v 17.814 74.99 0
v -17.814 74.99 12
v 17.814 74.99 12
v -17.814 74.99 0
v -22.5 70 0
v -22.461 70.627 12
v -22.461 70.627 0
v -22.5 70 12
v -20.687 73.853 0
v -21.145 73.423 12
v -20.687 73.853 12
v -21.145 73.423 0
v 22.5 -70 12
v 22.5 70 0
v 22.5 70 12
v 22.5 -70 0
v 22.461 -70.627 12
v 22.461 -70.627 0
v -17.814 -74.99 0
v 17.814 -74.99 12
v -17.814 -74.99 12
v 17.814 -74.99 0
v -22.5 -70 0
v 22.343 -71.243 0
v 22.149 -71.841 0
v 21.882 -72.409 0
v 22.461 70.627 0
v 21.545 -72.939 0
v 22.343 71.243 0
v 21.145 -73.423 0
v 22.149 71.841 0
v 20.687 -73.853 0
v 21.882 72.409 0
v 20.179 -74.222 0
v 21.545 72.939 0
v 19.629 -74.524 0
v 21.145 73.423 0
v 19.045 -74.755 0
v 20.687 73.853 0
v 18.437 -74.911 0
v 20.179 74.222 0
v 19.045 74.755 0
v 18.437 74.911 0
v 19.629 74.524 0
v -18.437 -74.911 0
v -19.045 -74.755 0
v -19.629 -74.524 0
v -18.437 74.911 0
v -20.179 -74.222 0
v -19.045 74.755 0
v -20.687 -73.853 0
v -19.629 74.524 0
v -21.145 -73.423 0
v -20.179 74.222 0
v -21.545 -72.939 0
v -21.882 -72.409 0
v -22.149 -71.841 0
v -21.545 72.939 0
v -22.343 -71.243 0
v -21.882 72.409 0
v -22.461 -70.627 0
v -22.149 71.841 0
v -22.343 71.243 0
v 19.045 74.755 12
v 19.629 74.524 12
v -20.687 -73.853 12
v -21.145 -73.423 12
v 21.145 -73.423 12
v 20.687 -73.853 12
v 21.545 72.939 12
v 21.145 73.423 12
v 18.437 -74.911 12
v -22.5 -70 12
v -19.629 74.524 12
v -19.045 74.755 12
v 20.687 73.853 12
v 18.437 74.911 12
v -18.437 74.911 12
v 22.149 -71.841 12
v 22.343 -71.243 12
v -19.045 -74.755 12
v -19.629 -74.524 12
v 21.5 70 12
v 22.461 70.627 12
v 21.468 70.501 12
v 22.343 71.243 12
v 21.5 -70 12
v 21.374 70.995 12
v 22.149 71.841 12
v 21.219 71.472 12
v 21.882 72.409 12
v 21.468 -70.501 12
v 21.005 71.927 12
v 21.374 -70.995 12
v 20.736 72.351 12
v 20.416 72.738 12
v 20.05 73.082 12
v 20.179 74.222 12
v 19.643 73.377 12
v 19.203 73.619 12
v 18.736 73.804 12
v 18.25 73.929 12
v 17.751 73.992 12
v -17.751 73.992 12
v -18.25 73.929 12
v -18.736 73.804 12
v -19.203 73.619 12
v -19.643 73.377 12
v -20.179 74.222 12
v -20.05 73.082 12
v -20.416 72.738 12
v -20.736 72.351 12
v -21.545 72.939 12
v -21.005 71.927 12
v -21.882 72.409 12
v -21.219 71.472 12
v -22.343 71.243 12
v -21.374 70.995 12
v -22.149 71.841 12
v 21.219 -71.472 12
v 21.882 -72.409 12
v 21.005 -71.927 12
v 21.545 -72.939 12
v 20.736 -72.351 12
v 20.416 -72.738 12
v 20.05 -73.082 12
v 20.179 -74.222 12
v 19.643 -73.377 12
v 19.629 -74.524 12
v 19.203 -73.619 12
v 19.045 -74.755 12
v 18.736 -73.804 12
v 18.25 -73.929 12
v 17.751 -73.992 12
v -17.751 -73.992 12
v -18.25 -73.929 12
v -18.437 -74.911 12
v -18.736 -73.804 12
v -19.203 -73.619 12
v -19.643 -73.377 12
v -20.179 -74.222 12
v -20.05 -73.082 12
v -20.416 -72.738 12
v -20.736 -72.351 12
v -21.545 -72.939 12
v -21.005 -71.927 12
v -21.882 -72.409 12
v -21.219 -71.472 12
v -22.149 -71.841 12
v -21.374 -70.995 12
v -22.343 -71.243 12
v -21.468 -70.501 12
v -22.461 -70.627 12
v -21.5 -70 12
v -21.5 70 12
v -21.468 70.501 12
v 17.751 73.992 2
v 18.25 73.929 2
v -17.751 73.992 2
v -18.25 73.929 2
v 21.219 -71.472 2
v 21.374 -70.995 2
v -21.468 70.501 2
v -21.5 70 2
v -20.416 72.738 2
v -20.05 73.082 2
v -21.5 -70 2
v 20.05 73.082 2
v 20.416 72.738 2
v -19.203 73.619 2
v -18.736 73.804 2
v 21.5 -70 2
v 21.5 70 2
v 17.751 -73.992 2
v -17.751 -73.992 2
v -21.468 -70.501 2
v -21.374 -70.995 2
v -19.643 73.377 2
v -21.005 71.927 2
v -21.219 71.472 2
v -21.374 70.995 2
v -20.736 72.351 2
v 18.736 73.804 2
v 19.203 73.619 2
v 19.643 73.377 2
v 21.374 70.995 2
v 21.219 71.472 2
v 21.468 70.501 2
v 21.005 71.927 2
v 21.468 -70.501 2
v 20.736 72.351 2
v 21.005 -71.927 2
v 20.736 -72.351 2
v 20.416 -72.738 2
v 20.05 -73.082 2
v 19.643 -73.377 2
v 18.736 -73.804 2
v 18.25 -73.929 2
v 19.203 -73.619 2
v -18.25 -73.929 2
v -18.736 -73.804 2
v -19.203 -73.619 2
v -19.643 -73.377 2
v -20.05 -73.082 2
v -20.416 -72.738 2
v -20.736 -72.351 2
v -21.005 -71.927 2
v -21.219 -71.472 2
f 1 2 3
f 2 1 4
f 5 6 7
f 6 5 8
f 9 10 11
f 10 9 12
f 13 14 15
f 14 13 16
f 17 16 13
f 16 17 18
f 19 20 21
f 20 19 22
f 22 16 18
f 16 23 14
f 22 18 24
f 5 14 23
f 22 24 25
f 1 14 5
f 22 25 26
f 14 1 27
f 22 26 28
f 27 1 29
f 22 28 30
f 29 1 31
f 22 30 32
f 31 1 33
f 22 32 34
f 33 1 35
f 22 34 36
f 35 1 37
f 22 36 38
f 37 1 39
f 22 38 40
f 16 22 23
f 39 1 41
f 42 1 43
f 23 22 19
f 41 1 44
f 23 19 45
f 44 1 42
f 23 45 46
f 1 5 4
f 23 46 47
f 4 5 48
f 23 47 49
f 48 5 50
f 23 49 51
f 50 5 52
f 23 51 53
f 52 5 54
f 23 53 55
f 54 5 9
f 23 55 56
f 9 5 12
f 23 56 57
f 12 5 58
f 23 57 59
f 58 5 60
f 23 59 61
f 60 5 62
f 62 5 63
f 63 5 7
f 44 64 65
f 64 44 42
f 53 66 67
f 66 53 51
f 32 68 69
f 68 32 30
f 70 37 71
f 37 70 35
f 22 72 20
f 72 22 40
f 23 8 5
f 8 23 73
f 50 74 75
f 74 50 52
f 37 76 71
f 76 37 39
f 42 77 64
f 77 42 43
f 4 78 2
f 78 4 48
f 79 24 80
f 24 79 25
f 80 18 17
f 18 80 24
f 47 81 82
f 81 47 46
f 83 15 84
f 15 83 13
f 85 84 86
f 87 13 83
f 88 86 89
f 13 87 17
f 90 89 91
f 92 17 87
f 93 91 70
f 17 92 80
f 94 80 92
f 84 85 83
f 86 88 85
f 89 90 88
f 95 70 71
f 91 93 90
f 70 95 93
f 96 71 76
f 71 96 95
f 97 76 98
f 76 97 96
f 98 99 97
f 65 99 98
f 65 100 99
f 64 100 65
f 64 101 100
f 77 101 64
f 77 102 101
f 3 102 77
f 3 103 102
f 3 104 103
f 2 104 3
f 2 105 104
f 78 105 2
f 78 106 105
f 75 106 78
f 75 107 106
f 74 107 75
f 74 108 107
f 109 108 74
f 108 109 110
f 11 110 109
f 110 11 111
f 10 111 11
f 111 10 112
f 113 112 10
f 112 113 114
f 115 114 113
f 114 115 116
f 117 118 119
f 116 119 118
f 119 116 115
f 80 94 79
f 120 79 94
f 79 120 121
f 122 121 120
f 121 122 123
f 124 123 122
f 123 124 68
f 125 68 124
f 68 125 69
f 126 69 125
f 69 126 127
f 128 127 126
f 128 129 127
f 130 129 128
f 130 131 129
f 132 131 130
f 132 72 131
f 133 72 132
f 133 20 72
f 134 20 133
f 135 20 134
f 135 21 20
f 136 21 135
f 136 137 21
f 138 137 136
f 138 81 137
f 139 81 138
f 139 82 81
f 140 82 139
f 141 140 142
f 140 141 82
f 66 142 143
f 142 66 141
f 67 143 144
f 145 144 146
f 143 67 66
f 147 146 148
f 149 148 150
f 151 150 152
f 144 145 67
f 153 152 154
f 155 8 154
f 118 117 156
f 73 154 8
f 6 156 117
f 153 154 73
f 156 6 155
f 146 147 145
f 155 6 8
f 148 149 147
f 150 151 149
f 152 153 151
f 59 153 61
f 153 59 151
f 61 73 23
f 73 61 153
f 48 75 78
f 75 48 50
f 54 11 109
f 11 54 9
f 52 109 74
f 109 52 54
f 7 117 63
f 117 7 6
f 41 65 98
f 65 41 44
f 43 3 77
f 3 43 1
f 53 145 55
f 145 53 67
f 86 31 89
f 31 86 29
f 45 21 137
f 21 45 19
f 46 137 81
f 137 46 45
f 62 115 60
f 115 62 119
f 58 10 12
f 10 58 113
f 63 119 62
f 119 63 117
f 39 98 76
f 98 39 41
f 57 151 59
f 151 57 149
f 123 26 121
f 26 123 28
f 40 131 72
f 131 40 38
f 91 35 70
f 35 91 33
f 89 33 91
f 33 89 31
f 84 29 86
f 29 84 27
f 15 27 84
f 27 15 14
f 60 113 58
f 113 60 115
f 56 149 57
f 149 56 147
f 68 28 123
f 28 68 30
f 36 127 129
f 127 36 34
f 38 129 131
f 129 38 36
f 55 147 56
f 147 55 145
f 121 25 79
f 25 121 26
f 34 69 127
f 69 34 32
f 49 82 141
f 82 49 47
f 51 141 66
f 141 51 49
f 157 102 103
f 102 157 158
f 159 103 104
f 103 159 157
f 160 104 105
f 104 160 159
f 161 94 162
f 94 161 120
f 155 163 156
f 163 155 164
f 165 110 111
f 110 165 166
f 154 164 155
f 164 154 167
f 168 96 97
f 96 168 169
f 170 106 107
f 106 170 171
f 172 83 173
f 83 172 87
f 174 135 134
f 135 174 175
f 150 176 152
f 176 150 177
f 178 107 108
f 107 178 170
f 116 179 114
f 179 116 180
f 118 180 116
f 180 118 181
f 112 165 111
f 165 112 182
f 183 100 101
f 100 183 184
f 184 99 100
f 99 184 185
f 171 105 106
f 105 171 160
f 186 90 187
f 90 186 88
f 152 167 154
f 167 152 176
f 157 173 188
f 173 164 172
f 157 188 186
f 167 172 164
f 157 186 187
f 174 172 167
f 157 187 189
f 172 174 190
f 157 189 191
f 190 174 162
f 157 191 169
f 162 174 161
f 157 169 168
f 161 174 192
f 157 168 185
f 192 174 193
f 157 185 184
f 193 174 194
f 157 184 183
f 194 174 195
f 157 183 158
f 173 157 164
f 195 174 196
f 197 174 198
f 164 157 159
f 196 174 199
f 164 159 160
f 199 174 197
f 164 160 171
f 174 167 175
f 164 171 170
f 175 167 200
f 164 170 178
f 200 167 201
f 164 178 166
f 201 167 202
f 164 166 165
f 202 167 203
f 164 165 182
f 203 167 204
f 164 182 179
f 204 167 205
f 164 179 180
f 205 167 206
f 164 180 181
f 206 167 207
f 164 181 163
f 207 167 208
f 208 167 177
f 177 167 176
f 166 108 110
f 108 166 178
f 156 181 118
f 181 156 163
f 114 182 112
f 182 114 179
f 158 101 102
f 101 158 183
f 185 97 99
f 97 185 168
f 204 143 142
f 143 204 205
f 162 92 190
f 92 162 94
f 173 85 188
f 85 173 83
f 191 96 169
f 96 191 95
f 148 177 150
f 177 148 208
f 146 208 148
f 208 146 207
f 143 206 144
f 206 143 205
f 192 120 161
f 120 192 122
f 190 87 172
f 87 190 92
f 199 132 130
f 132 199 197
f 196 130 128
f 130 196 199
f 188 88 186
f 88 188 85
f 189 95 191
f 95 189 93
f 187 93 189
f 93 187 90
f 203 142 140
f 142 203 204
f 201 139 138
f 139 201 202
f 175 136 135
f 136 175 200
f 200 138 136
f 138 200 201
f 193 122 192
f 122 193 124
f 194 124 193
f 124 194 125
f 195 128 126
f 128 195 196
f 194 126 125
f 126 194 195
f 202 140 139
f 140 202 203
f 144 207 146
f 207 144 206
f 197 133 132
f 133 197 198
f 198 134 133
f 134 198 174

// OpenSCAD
$fn = 50;


difference() {
	union() {
		hull() {
			translate(v = [-17.5000000000, 70.0000000000, 0]) {
				cylinder(h = 12, r = 5);
			}
			translate(v = [17.5000000000, 70.0000000000, 0]) {
				cylinder(h = 12, r = 5);
			}
			translate(v = [-17.5000000000, -70.0000000000, 0]) {
				cylinder(h = 12, r = 5);
			}
			translate(v = [17.5000000000, -70.0000000000, 0]) {
				cylinder(h = 12, r = 5);
			}
		}
	}
	union() {
		translate(v = [0, 0, 2]) {
			hull() {
				translate(v = [-17.5000000000, 70.0000000000, 0]) {
					cylinder(h = 10, r = 4);
				}
				translate(v = [17.5000000000, 70.0000000000, 0]) {
					cylinder(h = 10, r = 4);
				}
				translate(v = [-17.5000000000, -70.0000000000, 0]) {
					cylinder(h = 10, r = 4);
				}
				translate(v = [17.5000000000, -70.0000000000, 0]) {
					cylinder(h = 10, r = 4);
				}
			}
		}
	}
}
